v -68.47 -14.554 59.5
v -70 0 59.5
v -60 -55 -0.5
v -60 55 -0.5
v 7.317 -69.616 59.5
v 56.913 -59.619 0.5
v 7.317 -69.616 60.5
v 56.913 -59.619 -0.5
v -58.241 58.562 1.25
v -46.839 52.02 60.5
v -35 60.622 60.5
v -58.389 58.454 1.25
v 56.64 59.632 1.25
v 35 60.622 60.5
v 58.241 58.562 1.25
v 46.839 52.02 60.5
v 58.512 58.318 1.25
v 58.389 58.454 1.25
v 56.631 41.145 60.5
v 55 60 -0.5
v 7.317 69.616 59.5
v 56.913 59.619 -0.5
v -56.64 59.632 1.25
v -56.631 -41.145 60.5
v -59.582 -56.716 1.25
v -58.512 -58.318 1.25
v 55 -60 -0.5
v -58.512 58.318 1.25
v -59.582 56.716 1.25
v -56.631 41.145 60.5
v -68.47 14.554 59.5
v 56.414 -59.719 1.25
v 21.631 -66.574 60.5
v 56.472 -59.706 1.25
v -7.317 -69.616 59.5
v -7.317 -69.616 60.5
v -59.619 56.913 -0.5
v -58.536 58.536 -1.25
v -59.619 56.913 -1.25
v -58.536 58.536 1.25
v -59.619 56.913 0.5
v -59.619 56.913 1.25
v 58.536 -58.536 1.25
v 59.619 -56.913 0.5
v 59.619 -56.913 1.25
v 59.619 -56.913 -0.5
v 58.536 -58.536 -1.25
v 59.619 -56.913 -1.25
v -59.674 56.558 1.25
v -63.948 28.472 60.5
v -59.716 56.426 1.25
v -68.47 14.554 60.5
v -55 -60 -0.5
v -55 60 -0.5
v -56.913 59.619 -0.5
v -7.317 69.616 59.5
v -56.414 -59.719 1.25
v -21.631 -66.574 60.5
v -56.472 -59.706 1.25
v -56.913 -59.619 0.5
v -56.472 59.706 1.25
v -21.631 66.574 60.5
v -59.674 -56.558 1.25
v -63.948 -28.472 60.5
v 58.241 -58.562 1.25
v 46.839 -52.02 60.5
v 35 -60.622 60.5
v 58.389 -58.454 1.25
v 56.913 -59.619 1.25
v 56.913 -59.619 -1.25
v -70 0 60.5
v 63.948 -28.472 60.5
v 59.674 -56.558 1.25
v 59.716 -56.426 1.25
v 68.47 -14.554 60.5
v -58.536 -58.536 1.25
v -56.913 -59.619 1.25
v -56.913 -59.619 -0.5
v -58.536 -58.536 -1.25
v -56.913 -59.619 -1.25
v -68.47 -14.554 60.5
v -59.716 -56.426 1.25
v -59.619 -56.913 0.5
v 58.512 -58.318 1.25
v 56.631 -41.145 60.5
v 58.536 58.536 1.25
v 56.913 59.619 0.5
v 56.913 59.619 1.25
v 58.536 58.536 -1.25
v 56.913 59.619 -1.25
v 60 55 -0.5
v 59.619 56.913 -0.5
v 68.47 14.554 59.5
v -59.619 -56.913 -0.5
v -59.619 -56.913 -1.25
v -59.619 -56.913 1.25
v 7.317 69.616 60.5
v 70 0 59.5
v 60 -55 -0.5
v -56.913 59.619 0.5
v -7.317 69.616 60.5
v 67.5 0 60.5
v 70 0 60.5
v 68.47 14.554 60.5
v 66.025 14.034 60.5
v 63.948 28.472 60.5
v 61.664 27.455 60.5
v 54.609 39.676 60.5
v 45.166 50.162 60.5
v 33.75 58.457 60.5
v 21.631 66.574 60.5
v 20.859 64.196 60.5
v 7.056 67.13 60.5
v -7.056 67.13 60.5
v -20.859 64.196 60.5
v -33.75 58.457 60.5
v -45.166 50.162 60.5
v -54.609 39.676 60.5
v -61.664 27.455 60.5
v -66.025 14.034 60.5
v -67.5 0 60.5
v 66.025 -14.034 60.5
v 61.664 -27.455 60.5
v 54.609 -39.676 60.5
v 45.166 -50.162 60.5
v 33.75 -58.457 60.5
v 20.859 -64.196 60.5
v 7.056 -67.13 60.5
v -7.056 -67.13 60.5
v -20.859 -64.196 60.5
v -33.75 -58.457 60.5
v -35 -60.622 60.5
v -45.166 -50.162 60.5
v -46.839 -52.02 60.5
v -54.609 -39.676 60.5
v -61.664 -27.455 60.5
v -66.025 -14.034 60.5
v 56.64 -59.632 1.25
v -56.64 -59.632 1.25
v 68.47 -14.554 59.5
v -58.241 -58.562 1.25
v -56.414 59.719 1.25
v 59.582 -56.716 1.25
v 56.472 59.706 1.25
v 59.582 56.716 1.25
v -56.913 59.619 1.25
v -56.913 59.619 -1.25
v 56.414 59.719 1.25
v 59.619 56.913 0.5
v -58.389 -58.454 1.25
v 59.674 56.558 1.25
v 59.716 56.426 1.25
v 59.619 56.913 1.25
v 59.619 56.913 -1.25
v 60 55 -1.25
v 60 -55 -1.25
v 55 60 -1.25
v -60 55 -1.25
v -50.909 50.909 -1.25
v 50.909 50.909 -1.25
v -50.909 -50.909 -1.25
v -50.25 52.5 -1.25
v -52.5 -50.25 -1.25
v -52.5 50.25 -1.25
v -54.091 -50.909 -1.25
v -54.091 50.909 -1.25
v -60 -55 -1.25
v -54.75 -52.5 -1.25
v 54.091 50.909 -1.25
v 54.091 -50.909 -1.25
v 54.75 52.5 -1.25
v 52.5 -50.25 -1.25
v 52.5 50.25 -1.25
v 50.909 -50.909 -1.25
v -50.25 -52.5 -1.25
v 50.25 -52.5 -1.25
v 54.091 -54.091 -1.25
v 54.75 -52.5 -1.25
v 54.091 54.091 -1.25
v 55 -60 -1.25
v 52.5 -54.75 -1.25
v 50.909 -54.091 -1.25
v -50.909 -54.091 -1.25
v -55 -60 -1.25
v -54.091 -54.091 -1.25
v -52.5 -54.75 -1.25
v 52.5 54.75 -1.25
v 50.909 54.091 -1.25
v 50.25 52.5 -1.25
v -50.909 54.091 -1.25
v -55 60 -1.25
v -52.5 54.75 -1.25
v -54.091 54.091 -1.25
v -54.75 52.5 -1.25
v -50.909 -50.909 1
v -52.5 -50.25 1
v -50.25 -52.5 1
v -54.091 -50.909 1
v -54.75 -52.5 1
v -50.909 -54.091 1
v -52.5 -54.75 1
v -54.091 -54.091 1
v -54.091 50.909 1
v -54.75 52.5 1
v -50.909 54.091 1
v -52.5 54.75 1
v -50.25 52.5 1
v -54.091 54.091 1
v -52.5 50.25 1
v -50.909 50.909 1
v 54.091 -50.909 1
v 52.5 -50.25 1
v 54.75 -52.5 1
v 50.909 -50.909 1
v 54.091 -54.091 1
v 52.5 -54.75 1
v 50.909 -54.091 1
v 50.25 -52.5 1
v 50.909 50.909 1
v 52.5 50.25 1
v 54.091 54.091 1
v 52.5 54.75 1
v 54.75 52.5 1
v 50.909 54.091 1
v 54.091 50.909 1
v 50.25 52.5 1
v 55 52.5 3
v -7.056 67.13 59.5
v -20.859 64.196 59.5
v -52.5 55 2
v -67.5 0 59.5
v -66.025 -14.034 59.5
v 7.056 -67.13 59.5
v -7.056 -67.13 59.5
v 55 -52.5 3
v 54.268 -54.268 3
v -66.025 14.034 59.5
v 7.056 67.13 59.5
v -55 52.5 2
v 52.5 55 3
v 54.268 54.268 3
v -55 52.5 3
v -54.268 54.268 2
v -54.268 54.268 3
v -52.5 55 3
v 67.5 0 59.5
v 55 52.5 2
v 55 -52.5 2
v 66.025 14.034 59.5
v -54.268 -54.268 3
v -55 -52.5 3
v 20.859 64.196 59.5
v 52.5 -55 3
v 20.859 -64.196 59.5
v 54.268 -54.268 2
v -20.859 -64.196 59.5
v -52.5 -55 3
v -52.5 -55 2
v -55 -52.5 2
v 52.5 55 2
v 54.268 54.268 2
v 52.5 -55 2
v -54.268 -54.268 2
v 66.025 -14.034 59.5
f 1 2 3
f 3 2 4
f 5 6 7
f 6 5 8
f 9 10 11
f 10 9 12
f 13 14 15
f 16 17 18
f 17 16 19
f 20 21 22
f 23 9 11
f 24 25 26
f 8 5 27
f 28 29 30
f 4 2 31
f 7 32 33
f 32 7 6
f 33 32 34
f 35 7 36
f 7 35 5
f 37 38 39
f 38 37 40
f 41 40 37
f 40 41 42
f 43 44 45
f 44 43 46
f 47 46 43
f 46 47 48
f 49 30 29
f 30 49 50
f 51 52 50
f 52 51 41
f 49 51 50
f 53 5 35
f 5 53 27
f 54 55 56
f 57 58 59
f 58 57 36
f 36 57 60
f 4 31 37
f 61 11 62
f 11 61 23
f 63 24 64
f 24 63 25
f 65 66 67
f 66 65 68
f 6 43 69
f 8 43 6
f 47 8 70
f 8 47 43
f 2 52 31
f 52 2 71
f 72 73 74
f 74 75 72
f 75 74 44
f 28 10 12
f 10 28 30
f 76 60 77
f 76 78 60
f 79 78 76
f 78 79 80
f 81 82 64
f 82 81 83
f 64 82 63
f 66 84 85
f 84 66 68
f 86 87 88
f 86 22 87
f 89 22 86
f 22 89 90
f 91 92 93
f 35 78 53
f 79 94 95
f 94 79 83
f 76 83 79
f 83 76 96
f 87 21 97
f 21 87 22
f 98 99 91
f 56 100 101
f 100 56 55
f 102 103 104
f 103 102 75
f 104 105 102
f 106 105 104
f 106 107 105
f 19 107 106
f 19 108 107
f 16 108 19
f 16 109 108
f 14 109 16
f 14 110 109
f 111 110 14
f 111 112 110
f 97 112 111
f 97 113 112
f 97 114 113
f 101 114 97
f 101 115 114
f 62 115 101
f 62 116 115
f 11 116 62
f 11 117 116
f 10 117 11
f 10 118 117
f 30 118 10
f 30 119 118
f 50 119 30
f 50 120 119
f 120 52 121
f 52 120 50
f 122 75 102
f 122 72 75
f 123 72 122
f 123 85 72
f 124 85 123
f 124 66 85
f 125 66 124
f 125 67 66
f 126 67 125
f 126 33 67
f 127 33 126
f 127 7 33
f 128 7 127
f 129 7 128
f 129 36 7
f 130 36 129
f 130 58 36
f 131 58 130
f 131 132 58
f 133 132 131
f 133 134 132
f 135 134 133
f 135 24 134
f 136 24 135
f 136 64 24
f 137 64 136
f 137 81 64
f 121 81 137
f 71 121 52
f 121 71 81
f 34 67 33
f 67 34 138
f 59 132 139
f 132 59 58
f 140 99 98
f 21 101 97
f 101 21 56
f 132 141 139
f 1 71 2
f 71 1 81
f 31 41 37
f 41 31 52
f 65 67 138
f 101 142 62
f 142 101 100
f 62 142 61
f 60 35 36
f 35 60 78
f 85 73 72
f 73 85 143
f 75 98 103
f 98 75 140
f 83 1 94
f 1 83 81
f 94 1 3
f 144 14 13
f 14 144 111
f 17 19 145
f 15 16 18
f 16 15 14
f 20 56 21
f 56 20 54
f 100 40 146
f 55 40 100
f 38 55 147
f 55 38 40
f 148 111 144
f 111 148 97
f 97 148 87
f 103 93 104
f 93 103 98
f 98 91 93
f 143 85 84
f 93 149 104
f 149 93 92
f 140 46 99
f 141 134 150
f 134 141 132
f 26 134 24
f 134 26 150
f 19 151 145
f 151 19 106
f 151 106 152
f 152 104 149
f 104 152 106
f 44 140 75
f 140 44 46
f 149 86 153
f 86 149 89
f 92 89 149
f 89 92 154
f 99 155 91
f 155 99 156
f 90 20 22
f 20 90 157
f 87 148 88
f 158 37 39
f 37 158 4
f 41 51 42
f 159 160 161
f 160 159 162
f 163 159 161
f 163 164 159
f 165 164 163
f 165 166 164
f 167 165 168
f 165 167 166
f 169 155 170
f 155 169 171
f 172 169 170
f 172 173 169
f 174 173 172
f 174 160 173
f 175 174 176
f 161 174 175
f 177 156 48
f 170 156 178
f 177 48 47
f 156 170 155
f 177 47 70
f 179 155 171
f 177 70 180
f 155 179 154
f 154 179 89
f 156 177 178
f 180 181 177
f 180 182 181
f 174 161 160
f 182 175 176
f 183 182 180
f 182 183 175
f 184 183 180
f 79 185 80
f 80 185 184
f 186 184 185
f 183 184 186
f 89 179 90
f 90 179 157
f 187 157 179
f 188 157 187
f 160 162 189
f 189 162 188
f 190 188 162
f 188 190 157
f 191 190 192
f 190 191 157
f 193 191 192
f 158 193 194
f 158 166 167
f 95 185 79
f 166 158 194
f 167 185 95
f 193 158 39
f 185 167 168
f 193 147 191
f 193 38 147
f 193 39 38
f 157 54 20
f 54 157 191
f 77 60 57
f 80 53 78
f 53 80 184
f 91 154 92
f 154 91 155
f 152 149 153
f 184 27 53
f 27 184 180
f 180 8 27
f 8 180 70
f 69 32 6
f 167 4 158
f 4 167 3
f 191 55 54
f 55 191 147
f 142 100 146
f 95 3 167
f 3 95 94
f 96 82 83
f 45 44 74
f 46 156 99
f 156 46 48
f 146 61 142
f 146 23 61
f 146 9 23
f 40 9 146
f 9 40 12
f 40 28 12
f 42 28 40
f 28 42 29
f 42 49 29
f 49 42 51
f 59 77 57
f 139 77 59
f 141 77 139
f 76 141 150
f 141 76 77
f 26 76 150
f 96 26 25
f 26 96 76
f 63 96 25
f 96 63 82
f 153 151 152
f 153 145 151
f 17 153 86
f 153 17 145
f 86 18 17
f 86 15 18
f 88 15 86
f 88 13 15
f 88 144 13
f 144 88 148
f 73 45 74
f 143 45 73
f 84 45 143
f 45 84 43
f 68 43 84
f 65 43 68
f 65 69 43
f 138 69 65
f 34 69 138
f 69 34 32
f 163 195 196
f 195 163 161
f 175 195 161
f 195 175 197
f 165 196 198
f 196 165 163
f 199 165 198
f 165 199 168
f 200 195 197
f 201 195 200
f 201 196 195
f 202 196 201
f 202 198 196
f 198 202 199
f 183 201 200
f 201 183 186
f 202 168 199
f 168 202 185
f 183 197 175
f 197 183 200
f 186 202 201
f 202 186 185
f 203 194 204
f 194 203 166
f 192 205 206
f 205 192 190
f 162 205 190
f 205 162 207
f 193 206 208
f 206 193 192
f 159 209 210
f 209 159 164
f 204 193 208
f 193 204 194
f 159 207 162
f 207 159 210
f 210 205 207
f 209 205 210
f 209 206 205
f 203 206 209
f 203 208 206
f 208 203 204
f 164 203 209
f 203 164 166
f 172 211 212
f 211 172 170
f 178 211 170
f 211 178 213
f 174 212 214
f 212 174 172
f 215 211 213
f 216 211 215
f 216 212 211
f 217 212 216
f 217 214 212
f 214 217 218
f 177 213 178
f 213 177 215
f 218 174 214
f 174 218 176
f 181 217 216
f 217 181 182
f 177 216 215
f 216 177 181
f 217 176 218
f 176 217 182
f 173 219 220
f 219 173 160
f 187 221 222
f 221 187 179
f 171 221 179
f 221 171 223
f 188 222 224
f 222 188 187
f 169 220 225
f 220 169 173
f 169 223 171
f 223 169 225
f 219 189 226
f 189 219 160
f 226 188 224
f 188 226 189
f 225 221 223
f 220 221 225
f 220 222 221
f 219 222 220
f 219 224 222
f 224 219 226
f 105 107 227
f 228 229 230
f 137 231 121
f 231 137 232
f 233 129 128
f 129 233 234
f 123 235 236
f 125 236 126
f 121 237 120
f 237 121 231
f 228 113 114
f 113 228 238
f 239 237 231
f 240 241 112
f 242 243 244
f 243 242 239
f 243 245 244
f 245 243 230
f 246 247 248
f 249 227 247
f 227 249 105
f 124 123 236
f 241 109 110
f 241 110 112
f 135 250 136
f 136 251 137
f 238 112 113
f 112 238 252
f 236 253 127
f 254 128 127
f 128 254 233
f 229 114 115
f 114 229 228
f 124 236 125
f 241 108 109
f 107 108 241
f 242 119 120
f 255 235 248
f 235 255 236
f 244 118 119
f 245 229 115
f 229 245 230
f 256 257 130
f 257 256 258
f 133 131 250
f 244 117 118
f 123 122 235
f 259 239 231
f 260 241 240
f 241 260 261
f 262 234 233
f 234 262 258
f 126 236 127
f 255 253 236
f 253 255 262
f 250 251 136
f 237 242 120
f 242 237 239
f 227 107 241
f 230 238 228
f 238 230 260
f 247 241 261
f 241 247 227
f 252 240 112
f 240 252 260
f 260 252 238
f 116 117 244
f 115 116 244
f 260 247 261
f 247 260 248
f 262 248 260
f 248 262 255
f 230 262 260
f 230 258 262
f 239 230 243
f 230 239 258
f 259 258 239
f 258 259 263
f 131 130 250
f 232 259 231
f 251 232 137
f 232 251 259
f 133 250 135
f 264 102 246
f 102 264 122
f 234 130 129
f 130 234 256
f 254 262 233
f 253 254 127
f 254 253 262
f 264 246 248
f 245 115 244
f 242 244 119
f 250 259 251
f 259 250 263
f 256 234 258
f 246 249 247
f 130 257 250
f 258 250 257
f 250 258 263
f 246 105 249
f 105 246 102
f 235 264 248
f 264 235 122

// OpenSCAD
// 120mm PC Fan Intake Piece
// Designed for standard 120mm PC fans (120x120x25mm mounting)

// Parameters
fan_size = 120;           // Fan dimension (120mm x 120mm)
fan_thickness = 25;       // Standard fan thickness
mounting_hole_spacing = 105; // Standard 120mm fan mounting holes
mounting_hole_diameter = 4.5; // For M4 screws with clearance
intake_length = 60;       // Length of intake funnel
intake_outer_diameter = 140; // Outer diameter of intake opening
wall_thickness = 2.5;     // Wall thickness for strength
corner_radius = 5;        // Rounded corners for better airflow

module fan_intake_piece() {
    difference() {
        union() {
            // Main funnel body - tapered from large opening to fan size
            hull() {
                // Large intake opening
                translate([0, 0, intake_length])
                    cylinder(d=intake_outer_diameter, h=1, center=true);
                
                // Fan mounting end - rounded square
                translate([0, 0, 0])
                    linear_extrude(height=1, center=true)
                    offset(r=corner_radius)
                    square([fan_size-2*corner_radius, fan_size-2*corner_radius], center=true);
            }
            
            // Fan mounting flange
            translate([0, 0, -wall_thickness/2])
                linear_extrude(height=wall_thickness)
                offset(r=corner_radius)
                square([fan_size-2*corner_radius, fan_size-2*corner_radius], center=true);
        }
        
        // Hollow interior - airflow channel
        hull() {
            // Interior opening at intake
            translate([0, 0, intake_length])
                cylinder(d=intake_outer_diameter-2*wall_thickness, h=1, center=true);
            
            // Interior opening at fan end
            translate([0, 0, wall_thickness])
                linear_extrude(height=1, center=true)
                offset(r=corner_radius-wall_thickness)
                square([fan_size-2*corner_radius-2*wall_thickness, 
                       fan_size-2*corner_radius-2*wall_thickness], center=true);
        }
        
        // Fan mounting holes
        for(x = [-1, 1]) {
            for(y = [-1, 1]) {
                translate([x * mounting_hole_spacing/2, y * mounting_hole_spacing/2, -wall_thickness-1])
                    cylinder(d=mounting_hole_diameter, h=wall_thickness+2);
            }
        }
        
        // Fan blade clearance area
        translate([0, 0, wall_thickness])
            cylinder(d=fan_size-10, h=fan_thickness+1);
    }
}

// Generate the intake piece
fan_intake_piece();
